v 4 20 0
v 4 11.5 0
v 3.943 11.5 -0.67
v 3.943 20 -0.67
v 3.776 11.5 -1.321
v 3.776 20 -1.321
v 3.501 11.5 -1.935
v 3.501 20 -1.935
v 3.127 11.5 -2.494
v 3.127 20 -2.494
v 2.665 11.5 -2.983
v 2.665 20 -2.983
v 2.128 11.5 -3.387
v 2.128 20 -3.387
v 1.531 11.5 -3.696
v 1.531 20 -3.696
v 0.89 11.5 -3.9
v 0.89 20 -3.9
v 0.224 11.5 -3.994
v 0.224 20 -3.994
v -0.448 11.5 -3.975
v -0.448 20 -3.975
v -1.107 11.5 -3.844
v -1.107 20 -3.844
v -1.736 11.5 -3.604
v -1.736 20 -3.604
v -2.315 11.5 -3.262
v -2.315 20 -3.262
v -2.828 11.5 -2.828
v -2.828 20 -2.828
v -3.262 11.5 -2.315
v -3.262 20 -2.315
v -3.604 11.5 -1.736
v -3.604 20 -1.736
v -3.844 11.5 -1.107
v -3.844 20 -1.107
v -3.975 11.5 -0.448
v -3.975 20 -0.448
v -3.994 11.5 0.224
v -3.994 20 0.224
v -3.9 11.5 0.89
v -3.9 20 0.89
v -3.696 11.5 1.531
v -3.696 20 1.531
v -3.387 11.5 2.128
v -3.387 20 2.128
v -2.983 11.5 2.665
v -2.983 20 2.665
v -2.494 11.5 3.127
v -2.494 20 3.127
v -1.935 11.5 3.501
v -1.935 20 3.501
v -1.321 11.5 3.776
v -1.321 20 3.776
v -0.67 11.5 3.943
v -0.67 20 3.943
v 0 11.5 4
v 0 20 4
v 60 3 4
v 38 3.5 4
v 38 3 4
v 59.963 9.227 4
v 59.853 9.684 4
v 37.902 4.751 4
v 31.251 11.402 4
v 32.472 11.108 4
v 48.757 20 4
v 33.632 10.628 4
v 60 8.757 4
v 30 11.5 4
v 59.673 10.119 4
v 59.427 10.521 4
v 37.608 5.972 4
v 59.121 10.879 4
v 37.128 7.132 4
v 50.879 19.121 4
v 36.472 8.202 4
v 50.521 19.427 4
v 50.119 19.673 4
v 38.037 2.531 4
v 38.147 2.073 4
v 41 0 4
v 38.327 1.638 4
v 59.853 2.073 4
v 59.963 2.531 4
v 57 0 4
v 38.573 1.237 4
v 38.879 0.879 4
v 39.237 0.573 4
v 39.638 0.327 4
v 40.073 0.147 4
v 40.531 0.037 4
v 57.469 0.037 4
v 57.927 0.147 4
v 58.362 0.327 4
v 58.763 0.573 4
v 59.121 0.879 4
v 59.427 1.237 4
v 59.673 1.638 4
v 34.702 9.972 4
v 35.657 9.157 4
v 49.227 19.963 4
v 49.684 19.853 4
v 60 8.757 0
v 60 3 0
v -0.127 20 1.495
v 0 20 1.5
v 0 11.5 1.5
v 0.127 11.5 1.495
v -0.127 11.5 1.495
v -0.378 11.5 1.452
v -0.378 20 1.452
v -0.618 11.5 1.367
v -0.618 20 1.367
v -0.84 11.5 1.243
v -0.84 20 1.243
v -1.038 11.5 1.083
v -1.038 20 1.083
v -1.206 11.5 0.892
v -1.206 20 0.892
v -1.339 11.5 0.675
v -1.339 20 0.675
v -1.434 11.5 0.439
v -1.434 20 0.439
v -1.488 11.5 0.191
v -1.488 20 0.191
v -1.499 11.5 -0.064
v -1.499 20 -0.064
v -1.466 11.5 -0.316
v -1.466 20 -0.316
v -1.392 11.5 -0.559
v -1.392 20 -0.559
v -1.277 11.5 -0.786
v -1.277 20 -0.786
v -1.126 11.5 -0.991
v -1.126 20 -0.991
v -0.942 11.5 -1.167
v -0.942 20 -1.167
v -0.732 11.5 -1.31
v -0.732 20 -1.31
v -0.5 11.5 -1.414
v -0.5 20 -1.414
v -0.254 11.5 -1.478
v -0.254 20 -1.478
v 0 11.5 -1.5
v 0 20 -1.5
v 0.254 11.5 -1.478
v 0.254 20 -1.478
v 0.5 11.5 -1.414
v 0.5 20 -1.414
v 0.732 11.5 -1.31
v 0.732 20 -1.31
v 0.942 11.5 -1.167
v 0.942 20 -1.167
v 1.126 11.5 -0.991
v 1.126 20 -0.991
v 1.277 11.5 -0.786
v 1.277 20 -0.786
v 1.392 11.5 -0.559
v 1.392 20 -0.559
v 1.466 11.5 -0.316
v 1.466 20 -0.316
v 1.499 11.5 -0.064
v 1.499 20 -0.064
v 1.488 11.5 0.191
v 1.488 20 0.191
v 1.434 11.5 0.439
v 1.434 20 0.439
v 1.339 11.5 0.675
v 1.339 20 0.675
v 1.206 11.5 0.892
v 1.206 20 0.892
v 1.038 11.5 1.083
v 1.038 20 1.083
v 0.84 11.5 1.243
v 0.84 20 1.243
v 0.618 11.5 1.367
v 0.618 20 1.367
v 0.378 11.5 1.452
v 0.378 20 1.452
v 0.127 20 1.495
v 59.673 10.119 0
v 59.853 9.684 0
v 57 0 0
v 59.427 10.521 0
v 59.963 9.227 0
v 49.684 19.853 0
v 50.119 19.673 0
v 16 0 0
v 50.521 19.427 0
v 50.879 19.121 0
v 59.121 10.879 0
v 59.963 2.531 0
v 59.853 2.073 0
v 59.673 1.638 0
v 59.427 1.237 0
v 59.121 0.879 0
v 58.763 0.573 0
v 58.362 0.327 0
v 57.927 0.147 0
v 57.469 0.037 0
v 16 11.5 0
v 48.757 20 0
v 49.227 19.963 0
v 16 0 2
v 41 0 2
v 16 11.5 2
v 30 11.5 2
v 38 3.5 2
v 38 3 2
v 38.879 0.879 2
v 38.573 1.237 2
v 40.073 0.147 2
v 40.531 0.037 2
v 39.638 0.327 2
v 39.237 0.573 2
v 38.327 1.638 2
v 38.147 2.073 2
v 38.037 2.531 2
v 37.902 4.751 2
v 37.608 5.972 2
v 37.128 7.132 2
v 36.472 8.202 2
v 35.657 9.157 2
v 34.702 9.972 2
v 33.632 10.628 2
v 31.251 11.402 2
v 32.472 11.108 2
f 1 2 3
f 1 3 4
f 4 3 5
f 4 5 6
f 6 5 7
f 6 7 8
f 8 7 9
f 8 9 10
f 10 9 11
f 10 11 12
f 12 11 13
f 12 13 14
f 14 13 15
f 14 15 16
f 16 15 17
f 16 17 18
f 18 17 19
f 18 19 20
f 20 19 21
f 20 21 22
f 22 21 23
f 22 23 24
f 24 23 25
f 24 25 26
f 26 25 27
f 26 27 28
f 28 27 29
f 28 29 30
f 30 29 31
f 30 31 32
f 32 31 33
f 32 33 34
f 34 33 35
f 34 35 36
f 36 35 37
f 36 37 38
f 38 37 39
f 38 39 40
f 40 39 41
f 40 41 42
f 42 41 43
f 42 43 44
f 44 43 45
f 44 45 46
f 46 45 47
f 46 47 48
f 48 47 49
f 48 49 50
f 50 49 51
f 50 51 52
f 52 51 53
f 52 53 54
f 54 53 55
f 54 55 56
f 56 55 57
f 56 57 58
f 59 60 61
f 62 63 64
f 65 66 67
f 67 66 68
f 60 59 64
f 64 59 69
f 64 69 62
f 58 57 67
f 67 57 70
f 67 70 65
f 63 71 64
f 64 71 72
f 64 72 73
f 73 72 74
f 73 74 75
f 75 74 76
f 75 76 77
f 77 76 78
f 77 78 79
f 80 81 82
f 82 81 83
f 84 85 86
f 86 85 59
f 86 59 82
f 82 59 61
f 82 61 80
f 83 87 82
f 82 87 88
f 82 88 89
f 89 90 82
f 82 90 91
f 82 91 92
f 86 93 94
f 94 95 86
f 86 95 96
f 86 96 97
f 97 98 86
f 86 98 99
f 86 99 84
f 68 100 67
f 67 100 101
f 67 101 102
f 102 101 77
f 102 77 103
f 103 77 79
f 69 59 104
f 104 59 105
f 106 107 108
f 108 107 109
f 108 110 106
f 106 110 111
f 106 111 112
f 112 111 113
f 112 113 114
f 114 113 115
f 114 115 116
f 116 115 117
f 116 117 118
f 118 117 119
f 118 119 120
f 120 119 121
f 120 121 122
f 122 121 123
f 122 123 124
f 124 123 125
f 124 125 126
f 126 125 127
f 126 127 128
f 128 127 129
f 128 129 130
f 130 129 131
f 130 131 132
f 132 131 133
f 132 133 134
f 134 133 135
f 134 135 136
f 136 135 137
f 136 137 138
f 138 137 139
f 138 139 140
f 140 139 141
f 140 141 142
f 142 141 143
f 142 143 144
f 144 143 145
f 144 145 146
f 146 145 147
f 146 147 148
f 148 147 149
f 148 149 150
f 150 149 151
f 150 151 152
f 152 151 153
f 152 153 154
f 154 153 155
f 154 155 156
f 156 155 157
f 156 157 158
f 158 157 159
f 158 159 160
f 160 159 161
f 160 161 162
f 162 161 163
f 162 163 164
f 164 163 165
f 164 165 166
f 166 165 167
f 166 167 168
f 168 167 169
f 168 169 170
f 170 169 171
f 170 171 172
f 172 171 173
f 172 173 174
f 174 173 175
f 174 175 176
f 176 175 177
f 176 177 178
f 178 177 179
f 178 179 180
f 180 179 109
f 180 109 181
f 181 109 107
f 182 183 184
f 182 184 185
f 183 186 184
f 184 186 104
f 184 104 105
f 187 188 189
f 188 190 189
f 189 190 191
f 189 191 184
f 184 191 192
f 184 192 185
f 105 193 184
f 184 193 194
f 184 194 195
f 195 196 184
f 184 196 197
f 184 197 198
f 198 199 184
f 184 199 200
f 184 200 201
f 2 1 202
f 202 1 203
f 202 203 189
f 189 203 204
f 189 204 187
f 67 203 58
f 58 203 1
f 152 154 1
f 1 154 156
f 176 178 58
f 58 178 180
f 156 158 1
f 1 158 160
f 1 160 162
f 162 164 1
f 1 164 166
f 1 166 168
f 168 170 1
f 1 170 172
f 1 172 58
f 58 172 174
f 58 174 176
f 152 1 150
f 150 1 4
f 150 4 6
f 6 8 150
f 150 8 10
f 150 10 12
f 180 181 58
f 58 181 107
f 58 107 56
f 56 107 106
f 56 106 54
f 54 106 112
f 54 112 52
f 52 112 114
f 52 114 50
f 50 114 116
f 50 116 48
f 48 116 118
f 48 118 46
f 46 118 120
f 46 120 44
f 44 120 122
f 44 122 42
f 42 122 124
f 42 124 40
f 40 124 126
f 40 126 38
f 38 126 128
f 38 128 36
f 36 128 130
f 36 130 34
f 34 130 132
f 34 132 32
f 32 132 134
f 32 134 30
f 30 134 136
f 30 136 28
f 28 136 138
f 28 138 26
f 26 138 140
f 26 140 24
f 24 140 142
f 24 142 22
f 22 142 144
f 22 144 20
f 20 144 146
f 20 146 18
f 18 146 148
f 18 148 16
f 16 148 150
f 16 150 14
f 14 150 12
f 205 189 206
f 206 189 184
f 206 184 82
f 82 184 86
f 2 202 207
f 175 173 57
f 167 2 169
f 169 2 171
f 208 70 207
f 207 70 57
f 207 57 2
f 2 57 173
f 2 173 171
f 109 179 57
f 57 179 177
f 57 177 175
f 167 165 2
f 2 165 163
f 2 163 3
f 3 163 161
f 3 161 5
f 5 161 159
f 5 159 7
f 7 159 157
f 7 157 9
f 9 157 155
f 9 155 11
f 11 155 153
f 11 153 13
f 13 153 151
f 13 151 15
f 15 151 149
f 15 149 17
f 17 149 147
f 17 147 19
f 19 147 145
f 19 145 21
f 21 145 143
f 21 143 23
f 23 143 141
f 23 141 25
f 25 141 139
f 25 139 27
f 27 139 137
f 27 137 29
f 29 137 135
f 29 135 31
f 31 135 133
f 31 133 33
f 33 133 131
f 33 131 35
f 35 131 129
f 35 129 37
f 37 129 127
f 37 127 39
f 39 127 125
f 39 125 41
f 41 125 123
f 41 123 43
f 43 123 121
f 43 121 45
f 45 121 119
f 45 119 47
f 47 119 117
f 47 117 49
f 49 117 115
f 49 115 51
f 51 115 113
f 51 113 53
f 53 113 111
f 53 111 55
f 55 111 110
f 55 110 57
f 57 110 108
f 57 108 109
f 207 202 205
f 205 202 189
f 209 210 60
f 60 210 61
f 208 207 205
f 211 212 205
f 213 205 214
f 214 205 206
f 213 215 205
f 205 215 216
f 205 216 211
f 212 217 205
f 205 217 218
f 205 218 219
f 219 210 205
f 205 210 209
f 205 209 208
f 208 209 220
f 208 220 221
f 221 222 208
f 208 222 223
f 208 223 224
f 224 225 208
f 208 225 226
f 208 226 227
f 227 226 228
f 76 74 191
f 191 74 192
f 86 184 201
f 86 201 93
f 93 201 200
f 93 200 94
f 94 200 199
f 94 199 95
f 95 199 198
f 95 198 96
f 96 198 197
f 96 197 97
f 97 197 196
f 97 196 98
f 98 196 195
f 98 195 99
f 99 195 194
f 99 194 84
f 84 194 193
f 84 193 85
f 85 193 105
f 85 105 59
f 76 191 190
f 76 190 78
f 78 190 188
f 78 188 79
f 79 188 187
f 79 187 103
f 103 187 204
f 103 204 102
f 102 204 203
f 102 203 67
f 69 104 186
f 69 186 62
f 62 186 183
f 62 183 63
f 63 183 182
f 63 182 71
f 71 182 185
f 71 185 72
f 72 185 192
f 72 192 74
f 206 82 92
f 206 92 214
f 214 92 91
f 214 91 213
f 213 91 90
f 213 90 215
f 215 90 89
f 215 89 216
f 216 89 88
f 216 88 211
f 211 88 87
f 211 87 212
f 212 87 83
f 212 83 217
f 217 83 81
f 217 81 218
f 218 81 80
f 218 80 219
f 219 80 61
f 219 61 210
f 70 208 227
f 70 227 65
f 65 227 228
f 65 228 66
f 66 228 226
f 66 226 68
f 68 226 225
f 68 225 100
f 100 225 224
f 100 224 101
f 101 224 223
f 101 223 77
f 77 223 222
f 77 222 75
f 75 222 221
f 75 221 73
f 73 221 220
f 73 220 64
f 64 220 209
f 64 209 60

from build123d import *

# Parameters (mm, degrees)
CROQUIS1_R              = 4
CROQUIS1_R_2            = 1.5
SALIENTE_EXTRUIR1_DEPTH = 20
CROQUIS2_W              = 27.807177066
CROQUIS2_H              = 11.5
CORTAR_EXTRUIR1_DEPTH   = 20
CROQUIS3_W              = 22
CROQUIS3_H              = 11.5
CORTAR_EXTRUIR2_DEPTH   = 2
CHAFL_N1_SIZE           = 10
REDONDEO1_R             = 3
REDONDEO2_R             = 3
REDONDEO3_R             = 3
REDONDEO4_R             = 8


with BuildPart() as part:
    # Croquis1 → Saliente-Extruir1 (new body)
    # profile 1 of 2: a face of its own
    with BuildSketch(Plane(origin=(0, 0, 0), x_dir=(1, 0, 0), z_dir=(0, 1, 0))):
        Circle(CROQUIS1_R)
        with Locations(Location((0, 0, 0), (0, 0, 270))):
            Circle(CROQUIS1_R_2, mode=Mode.SUBTRACT)
    # profile 2 of 2: a face of its own
    with BuildSketch(Plane(origin=(0, 0, 0), x_dir=(1, 0, 0), z_dir=(0, 1, 0))):
        with BuildLine():
            Line((60, 0), (4, 0))
            ThreePointArc((4, 0), (2.828427125, -2.828427125), (0, -4))
            Line((0, -4), (60, -4))
            Line((60, -4), (60, 0))
        make_face()
    extrude(amount=SALIENTE_EXTRUIR1_DEPTH)

    # Croquis2 → Cortar-Extruir1 (cut)
    with BuildSketch(Plane.XY.offset(4)):
        with Locations((2.096411467, 5.75)):
            Rectangle(CROQUIS2_W, CROQUIS2_H)
    extrude(amount=-CORTAR_EXTRUIR1_DEPTH, mode=Mode.SUBTRACT)

    # Croquis3 → Cortar-Extruir2 (cut)
    with BuildSketch(Plane.XY.offset(4)):
        with Locations((27, 5.75)):
            Rectangle(CROQUIS3_W, CROQUIS3_H)
    extrude(amount=-CORTAR_EXTRUIR2_DEPTH, mode=Mode.SUBTRACT)

    # Chaflán1
    chafl_n1_edges = [part.edges().sort_by_distance(p)[0] for p in [
        (60, 20, 2),
    ]]
    chamfer(chafl_n1_edges, length=CHAFL_N1_SIZE)

    # Redondeo1
    redondeo1_edges = [part.edges().sort_by_distance(p)[0] for p in [
        (60, 0, 2),
    ]]
    fillet(redondeo1_edges, radius=REDONDEO1_R)

    # Redondeo2
    redondeo2_edges = [part.edges().sort_by_distance(p)[0] for p in [
        (50, 20, 2),
        (60, 10, 2),
    ]]
    fillet(redondeo2_edges, radius=REDONDEO2_R)

    # Redondeo3
    redondeo3_edges = [part.edges().sort_by_distance(p)[0] for p in [
        (38, 0, 3),
    ]]
    fillet(redondeo3_edges, radius=REDONDEO3_R)

    # Redondeo4
    redondeo4_edges = [part.edges().sort_by_distance(p)[0] for p in [
        (38, 11.5, 3),
    ]]
    fillet(redondeo4_edges, radius=REDONDEO4_R)


solid = part.part
